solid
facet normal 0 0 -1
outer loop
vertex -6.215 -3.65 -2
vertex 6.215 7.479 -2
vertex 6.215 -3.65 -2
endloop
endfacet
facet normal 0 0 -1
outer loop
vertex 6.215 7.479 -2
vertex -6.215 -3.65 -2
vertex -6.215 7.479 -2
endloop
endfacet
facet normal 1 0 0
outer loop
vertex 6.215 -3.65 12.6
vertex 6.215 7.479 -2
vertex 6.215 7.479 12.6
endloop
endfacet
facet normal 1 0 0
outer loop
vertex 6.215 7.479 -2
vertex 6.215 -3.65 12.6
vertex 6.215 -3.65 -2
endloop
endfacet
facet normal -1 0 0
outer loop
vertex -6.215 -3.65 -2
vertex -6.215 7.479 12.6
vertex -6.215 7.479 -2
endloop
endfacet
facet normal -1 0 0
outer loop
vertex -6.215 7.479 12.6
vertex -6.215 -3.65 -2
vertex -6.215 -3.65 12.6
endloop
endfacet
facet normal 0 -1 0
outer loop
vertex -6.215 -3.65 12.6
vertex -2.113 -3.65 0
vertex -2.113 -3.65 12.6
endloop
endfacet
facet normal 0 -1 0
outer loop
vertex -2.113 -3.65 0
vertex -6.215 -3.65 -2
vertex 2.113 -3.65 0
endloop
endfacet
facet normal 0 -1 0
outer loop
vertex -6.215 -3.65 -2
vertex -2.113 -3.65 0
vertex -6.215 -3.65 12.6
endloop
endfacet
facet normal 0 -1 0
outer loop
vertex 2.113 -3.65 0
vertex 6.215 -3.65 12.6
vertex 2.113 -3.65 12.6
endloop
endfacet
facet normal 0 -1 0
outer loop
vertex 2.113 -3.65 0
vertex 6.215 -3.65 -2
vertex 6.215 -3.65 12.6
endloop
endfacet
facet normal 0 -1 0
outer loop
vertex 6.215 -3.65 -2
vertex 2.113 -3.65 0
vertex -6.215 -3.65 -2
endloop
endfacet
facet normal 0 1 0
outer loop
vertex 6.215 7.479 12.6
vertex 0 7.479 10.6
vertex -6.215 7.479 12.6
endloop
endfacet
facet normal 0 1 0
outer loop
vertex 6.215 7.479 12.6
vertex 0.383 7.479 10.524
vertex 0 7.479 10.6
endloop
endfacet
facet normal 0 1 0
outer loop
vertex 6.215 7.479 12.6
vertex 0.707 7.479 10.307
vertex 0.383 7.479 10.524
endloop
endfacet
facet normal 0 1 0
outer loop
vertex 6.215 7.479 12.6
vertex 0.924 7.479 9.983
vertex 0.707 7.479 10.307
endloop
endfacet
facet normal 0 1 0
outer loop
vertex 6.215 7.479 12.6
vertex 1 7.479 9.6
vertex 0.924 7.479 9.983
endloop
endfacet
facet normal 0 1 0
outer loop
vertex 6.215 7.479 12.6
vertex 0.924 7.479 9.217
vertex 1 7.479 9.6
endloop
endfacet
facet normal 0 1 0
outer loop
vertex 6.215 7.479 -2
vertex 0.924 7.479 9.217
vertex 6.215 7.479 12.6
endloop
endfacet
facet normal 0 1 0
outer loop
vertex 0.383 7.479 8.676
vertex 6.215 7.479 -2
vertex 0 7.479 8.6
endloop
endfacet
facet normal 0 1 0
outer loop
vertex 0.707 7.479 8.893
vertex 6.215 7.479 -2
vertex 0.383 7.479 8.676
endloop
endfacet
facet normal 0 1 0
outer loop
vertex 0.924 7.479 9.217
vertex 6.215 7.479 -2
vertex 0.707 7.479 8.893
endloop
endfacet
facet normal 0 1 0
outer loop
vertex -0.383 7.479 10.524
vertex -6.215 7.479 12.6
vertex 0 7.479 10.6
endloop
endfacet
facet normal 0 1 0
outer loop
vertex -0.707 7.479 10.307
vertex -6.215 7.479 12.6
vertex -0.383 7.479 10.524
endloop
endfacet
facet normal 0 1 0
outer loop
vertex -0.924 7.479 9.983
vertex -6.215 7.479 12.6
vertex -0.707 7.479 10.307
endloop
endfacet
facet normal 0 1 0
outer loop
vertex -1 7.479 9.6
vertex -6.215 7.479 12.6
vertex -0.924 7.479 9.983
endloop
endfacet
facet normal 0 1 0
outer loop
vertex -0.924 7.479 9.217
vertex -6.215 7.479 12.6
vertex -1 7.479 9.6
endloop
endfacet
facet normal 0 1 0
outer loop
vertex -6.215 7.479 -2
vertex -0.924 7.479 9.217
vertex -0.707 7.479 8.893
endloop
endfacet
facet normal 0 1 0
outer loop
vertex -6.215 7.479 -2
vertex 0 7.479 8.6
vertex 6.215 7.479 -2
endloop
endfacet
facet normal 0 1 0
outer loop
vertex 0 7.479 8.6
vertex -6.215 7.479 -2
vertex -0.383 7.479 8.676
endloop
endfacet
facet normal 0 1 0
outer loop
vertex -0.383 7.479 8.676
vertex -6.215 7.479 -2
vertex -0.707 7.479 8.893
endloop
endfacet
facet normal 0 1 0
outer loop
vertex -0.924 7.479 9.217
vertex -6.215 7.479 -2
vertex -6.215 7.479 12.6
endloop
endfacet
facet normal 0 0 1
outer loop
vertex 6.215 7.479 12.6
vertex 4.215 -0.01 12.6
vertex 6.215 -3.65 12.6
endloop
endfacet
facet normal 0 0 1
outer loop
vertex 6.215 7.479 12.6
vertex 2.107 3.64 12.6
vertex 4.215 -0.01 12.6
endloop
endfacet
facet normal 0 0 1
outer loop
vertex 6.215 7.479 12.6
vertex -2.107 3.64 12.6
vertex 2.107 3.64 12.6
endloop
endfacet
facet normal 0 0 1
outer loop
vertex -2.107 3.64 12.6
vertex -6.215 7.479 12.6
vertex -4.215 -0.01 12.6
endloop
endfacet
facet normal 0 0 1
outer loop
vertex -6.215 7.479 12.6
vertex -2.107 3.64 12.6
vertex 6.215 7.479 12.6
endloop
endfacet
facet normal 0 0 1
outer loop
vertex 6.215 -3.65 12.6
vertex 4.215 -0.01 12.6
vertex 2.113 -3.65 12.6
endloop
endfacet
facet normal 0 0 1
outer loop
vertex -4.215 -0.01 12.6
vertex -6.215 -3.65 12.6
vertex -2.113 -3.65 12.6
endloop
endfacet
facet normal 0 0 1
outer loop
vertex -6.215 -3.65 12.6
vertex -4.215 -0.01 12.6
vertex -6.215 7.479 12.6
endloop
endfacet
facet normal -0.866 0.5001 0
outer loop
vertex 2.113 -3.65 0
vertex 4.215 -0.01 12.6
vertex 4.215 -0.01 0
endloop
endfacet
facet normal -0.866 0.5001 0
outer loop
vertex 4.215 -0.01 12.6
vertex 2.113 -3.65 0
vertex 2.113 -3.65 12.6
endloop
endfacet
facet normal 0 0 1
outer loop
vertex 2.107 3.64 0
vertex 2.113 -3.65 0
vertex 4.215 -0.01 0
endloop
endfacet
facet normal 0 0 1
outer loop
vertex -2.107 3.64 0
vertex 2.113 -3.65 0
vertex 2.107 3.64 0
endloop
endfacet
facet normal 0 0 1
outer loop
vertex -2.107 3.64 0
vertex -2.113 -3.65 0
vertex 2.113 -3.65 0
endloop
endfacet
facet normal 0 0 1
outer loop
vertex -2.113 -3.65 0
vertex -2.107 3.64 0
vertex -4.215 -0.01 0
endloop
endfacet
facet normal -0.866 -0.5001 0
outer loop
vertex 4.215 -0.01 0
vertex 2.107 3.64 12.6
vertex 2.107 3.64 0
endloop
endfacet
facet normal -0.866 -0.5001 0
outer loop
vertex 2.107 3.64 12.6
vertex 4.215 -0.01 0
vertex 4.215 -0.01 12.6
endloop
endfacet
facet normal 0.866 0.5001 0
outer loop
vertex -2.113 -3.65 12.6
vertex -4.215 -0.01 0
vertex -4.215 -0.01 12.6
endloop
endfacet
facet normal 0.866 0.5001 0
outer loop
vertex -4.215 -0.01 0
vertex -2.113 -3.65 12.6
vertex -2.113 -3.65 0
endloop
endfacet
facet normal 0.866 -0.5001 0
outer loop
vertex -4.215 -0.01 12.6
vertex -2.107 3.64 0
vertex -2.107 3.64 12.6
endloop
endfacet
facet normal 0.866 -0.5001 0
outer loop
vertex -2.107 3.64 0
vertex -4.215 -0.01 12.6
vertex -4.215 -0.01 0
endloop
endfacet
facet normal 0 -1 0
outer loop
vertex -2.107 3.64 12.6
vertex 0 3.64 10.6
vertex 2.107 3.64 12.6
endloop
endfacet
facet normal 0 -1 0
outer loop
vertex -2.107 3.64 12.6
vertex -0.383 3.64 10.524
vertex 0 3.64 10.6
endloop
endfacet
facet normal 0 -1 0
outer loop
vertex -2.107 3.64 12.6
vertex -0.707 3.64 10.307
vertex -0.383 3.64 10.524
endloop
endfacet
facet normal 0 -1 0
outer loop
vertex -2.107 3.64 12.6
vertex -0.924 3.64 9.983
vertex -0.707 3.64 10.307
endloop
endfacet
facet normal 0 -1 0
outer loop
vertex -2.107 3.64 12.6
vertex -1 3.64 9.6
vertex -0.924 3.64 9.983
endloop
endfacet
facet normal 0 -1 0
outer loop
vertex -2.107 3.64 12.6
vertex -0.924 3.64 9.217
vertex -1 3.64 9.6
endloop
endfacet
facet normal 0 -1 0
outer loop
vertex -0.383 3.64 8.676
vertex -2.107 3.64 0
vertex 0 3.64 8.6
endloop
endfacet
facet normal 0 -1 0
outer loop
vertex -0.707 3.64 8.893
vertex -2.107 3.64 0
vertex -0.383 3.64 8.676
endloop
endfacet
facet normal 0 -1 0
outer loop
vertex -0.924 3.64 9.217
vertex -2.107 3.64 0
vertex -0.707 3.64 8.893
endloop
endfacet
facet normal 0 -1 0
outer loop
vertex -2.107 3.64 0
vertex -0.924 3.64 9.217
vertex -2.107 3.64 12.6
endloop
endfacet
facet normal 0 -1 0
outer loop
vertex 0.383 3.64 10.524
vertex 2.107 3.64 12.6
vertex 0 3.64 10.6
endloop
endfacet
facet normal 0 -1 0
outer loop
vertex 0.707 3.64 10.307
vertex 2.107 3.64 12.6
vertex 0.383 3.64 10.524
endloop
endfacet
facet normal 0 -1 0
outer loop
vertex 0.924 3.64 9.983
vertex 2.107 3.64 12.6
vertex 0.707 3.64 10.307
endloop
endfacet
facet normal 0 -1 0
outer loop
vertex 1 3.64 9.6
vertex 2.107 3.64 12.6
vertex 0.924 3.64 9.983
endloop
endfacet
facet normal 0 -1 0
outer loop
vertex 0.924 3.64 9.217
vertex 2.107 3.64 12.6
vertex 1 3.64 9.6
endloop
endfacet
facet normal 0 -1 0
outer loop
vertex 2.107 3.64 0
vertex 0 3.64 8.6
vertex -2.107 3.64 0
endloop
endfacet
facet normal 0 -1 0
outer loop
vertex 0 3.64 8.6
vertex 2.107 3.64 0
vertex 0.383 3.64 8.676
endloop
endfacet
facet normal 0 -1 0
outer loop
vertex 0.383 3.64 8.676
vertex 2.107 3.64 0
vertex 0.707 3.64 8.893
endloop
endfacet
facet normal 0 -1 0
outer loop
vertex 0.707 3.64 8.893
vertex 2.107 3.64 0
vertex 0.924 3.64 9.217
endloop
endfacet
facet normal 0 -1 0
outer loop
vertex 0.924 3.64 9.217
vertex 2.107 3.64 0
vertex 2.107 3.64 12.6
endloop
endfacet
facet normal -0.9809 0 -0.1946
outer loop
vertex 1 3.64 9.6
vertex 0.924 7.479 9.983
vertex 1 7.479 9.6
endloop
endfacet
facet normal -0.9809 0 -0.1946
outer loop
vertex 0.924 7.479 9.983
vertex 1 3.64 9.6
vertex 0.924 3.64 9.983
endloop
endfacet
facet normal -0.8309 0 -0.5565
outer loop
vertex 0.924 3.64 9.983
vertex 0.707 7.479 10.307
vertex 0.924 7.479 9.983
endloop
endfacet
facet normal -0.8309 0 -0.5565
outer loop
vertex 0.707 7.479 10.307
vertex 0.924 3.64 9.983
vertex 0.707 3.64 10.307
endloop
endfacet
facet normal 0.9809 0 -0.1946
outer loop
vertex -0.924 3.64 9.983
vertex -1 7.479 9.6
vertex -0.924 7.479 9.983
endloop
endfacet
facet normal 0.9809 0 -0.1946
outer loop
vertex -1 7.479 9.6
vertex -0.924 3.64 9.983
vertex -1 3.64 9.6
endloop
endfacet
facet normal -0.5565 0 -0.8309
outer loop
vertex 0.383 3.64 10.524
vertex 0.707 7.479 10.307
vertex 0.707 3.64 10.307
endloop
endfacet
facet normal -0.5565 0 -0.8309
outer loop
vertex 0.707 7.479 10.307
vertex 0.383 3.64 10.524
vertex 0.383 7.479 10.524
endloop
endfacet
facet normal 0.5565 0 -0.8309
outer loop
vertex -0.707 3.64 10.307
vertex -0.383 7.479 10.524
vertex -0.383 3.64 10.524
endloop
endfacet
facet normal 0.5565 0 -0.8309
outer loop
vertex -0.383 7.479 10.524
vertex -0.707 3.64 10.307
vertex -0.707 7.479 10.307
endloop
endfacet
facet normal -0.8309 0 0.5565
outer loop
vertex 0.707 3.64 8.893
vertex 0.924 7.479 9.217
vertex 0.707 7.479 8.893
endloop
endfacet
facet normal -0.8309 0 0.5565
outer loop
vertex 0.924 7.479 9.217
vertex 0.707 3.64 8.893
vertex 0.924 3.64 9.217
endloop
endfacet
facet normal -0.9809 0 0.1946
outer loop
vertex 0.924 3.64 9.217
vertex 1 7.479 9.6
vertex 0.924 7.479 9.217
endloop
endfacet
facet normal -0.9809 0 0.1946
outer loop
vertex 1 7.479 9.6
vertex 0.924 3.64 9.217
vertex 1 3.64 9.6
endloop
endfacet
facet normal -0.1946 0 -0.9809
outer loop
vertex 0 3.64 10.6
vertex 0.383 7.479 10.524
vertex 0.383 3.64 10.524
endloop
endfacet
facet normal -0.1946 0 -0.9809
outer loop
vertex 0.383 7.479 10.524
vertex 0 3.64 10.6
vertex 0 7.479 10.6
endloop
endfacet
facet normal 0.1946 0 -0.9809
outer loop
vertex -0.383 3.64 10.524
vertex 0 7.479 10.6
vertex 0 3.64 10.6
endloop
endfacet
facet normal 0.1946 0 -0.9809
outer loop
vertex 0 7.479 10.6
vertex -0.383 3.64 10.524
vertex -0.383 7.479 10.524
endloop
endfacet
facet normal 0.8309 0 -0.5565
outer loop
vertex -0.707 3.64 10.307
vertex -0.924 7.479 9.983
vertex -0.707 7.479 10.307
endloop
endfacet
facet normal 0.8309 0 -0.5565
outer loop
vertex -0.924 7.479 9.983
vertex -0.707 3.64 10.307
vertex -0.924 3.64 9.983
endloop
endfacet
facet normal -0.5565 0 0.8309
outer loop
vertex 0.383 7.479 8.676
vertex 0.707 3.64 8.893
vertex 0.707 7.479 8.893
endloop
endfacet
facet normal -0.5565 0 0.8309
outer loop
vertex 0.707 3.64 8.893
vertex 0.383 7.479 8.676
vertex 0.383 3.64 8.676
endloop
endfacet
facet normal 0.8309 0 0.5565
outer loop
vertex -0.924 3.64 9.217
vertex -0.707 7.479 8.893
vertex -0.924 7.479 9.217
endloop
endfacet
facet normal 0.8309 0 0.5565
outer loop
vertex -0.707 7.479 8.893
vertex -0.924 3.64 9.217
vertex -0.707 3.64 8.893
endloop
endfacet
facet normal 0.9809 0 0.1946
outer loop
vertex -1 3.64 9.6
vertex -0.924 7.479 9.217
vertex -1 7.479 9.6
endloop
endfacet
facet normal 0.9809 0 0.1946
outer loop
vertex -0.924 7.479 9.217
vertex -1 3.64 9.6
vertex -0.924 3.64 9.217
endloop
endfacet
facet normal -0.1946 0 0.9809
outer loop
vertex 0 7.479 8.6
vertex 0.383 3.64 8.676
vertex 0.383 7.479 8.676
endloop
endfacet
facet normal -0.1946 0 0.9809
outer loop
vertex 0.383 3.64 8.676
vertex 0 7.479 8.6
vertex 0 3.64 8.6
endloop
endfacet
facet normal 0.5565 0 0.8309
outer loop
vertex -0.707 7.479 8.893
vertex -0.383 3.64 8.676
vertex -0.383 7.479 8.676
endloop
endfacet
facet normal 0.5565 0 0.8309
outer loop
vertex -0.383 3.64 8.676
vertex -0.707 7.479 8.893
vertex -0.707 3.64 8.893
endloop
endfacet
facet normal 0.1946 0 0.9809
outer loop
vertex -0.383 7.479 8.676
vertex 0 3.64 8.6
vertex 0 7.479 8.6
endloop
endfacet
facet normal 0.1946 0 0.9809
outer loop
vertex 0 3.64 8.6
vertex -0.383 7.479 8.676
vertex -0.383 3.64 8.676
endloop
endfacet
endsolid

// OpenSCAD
//Created by Oleg Skidan RC6OF (ex UR3IQO)
//
//Visit https://github.com/UR3IQO/CW_Paddle for more information
//
//This project is distributed under Creative Commons Attribution 4.0 International
//See the LICENSE file for the details

/* Stands drilling conductor (кондуктор для сверления стоек) */

$fn = 16;

//Height correction, may require correction for different printer/material
//Коррекция высоты отверстия, может потребоваться изменение в зависимости от принтера/метериала
correction = 0.6;    
d = 7.3;  //Stand sizeб edge to edge (размер втулки от ребра до ребра)
h = 9.6;  //высота отверстия

d_m = d / cos(30); //Stand outer diameter (диаметр втулки)
difference()
{
   translate([-(d_m + 4)/2, -d/2, -2]) 
      linear_extrude(h + 2 + 3) 
         square([d_m + 4, d_m + 2.7]);
   
   translate([0, -0.01, 0])
      linear_extrude(h + 3 + 1) 
         circle(d = d_m, $fn = 6);
      
   translate([0, 10, h]) rotate([90, 0, 0]) cylinder(20, d = 2);
}
